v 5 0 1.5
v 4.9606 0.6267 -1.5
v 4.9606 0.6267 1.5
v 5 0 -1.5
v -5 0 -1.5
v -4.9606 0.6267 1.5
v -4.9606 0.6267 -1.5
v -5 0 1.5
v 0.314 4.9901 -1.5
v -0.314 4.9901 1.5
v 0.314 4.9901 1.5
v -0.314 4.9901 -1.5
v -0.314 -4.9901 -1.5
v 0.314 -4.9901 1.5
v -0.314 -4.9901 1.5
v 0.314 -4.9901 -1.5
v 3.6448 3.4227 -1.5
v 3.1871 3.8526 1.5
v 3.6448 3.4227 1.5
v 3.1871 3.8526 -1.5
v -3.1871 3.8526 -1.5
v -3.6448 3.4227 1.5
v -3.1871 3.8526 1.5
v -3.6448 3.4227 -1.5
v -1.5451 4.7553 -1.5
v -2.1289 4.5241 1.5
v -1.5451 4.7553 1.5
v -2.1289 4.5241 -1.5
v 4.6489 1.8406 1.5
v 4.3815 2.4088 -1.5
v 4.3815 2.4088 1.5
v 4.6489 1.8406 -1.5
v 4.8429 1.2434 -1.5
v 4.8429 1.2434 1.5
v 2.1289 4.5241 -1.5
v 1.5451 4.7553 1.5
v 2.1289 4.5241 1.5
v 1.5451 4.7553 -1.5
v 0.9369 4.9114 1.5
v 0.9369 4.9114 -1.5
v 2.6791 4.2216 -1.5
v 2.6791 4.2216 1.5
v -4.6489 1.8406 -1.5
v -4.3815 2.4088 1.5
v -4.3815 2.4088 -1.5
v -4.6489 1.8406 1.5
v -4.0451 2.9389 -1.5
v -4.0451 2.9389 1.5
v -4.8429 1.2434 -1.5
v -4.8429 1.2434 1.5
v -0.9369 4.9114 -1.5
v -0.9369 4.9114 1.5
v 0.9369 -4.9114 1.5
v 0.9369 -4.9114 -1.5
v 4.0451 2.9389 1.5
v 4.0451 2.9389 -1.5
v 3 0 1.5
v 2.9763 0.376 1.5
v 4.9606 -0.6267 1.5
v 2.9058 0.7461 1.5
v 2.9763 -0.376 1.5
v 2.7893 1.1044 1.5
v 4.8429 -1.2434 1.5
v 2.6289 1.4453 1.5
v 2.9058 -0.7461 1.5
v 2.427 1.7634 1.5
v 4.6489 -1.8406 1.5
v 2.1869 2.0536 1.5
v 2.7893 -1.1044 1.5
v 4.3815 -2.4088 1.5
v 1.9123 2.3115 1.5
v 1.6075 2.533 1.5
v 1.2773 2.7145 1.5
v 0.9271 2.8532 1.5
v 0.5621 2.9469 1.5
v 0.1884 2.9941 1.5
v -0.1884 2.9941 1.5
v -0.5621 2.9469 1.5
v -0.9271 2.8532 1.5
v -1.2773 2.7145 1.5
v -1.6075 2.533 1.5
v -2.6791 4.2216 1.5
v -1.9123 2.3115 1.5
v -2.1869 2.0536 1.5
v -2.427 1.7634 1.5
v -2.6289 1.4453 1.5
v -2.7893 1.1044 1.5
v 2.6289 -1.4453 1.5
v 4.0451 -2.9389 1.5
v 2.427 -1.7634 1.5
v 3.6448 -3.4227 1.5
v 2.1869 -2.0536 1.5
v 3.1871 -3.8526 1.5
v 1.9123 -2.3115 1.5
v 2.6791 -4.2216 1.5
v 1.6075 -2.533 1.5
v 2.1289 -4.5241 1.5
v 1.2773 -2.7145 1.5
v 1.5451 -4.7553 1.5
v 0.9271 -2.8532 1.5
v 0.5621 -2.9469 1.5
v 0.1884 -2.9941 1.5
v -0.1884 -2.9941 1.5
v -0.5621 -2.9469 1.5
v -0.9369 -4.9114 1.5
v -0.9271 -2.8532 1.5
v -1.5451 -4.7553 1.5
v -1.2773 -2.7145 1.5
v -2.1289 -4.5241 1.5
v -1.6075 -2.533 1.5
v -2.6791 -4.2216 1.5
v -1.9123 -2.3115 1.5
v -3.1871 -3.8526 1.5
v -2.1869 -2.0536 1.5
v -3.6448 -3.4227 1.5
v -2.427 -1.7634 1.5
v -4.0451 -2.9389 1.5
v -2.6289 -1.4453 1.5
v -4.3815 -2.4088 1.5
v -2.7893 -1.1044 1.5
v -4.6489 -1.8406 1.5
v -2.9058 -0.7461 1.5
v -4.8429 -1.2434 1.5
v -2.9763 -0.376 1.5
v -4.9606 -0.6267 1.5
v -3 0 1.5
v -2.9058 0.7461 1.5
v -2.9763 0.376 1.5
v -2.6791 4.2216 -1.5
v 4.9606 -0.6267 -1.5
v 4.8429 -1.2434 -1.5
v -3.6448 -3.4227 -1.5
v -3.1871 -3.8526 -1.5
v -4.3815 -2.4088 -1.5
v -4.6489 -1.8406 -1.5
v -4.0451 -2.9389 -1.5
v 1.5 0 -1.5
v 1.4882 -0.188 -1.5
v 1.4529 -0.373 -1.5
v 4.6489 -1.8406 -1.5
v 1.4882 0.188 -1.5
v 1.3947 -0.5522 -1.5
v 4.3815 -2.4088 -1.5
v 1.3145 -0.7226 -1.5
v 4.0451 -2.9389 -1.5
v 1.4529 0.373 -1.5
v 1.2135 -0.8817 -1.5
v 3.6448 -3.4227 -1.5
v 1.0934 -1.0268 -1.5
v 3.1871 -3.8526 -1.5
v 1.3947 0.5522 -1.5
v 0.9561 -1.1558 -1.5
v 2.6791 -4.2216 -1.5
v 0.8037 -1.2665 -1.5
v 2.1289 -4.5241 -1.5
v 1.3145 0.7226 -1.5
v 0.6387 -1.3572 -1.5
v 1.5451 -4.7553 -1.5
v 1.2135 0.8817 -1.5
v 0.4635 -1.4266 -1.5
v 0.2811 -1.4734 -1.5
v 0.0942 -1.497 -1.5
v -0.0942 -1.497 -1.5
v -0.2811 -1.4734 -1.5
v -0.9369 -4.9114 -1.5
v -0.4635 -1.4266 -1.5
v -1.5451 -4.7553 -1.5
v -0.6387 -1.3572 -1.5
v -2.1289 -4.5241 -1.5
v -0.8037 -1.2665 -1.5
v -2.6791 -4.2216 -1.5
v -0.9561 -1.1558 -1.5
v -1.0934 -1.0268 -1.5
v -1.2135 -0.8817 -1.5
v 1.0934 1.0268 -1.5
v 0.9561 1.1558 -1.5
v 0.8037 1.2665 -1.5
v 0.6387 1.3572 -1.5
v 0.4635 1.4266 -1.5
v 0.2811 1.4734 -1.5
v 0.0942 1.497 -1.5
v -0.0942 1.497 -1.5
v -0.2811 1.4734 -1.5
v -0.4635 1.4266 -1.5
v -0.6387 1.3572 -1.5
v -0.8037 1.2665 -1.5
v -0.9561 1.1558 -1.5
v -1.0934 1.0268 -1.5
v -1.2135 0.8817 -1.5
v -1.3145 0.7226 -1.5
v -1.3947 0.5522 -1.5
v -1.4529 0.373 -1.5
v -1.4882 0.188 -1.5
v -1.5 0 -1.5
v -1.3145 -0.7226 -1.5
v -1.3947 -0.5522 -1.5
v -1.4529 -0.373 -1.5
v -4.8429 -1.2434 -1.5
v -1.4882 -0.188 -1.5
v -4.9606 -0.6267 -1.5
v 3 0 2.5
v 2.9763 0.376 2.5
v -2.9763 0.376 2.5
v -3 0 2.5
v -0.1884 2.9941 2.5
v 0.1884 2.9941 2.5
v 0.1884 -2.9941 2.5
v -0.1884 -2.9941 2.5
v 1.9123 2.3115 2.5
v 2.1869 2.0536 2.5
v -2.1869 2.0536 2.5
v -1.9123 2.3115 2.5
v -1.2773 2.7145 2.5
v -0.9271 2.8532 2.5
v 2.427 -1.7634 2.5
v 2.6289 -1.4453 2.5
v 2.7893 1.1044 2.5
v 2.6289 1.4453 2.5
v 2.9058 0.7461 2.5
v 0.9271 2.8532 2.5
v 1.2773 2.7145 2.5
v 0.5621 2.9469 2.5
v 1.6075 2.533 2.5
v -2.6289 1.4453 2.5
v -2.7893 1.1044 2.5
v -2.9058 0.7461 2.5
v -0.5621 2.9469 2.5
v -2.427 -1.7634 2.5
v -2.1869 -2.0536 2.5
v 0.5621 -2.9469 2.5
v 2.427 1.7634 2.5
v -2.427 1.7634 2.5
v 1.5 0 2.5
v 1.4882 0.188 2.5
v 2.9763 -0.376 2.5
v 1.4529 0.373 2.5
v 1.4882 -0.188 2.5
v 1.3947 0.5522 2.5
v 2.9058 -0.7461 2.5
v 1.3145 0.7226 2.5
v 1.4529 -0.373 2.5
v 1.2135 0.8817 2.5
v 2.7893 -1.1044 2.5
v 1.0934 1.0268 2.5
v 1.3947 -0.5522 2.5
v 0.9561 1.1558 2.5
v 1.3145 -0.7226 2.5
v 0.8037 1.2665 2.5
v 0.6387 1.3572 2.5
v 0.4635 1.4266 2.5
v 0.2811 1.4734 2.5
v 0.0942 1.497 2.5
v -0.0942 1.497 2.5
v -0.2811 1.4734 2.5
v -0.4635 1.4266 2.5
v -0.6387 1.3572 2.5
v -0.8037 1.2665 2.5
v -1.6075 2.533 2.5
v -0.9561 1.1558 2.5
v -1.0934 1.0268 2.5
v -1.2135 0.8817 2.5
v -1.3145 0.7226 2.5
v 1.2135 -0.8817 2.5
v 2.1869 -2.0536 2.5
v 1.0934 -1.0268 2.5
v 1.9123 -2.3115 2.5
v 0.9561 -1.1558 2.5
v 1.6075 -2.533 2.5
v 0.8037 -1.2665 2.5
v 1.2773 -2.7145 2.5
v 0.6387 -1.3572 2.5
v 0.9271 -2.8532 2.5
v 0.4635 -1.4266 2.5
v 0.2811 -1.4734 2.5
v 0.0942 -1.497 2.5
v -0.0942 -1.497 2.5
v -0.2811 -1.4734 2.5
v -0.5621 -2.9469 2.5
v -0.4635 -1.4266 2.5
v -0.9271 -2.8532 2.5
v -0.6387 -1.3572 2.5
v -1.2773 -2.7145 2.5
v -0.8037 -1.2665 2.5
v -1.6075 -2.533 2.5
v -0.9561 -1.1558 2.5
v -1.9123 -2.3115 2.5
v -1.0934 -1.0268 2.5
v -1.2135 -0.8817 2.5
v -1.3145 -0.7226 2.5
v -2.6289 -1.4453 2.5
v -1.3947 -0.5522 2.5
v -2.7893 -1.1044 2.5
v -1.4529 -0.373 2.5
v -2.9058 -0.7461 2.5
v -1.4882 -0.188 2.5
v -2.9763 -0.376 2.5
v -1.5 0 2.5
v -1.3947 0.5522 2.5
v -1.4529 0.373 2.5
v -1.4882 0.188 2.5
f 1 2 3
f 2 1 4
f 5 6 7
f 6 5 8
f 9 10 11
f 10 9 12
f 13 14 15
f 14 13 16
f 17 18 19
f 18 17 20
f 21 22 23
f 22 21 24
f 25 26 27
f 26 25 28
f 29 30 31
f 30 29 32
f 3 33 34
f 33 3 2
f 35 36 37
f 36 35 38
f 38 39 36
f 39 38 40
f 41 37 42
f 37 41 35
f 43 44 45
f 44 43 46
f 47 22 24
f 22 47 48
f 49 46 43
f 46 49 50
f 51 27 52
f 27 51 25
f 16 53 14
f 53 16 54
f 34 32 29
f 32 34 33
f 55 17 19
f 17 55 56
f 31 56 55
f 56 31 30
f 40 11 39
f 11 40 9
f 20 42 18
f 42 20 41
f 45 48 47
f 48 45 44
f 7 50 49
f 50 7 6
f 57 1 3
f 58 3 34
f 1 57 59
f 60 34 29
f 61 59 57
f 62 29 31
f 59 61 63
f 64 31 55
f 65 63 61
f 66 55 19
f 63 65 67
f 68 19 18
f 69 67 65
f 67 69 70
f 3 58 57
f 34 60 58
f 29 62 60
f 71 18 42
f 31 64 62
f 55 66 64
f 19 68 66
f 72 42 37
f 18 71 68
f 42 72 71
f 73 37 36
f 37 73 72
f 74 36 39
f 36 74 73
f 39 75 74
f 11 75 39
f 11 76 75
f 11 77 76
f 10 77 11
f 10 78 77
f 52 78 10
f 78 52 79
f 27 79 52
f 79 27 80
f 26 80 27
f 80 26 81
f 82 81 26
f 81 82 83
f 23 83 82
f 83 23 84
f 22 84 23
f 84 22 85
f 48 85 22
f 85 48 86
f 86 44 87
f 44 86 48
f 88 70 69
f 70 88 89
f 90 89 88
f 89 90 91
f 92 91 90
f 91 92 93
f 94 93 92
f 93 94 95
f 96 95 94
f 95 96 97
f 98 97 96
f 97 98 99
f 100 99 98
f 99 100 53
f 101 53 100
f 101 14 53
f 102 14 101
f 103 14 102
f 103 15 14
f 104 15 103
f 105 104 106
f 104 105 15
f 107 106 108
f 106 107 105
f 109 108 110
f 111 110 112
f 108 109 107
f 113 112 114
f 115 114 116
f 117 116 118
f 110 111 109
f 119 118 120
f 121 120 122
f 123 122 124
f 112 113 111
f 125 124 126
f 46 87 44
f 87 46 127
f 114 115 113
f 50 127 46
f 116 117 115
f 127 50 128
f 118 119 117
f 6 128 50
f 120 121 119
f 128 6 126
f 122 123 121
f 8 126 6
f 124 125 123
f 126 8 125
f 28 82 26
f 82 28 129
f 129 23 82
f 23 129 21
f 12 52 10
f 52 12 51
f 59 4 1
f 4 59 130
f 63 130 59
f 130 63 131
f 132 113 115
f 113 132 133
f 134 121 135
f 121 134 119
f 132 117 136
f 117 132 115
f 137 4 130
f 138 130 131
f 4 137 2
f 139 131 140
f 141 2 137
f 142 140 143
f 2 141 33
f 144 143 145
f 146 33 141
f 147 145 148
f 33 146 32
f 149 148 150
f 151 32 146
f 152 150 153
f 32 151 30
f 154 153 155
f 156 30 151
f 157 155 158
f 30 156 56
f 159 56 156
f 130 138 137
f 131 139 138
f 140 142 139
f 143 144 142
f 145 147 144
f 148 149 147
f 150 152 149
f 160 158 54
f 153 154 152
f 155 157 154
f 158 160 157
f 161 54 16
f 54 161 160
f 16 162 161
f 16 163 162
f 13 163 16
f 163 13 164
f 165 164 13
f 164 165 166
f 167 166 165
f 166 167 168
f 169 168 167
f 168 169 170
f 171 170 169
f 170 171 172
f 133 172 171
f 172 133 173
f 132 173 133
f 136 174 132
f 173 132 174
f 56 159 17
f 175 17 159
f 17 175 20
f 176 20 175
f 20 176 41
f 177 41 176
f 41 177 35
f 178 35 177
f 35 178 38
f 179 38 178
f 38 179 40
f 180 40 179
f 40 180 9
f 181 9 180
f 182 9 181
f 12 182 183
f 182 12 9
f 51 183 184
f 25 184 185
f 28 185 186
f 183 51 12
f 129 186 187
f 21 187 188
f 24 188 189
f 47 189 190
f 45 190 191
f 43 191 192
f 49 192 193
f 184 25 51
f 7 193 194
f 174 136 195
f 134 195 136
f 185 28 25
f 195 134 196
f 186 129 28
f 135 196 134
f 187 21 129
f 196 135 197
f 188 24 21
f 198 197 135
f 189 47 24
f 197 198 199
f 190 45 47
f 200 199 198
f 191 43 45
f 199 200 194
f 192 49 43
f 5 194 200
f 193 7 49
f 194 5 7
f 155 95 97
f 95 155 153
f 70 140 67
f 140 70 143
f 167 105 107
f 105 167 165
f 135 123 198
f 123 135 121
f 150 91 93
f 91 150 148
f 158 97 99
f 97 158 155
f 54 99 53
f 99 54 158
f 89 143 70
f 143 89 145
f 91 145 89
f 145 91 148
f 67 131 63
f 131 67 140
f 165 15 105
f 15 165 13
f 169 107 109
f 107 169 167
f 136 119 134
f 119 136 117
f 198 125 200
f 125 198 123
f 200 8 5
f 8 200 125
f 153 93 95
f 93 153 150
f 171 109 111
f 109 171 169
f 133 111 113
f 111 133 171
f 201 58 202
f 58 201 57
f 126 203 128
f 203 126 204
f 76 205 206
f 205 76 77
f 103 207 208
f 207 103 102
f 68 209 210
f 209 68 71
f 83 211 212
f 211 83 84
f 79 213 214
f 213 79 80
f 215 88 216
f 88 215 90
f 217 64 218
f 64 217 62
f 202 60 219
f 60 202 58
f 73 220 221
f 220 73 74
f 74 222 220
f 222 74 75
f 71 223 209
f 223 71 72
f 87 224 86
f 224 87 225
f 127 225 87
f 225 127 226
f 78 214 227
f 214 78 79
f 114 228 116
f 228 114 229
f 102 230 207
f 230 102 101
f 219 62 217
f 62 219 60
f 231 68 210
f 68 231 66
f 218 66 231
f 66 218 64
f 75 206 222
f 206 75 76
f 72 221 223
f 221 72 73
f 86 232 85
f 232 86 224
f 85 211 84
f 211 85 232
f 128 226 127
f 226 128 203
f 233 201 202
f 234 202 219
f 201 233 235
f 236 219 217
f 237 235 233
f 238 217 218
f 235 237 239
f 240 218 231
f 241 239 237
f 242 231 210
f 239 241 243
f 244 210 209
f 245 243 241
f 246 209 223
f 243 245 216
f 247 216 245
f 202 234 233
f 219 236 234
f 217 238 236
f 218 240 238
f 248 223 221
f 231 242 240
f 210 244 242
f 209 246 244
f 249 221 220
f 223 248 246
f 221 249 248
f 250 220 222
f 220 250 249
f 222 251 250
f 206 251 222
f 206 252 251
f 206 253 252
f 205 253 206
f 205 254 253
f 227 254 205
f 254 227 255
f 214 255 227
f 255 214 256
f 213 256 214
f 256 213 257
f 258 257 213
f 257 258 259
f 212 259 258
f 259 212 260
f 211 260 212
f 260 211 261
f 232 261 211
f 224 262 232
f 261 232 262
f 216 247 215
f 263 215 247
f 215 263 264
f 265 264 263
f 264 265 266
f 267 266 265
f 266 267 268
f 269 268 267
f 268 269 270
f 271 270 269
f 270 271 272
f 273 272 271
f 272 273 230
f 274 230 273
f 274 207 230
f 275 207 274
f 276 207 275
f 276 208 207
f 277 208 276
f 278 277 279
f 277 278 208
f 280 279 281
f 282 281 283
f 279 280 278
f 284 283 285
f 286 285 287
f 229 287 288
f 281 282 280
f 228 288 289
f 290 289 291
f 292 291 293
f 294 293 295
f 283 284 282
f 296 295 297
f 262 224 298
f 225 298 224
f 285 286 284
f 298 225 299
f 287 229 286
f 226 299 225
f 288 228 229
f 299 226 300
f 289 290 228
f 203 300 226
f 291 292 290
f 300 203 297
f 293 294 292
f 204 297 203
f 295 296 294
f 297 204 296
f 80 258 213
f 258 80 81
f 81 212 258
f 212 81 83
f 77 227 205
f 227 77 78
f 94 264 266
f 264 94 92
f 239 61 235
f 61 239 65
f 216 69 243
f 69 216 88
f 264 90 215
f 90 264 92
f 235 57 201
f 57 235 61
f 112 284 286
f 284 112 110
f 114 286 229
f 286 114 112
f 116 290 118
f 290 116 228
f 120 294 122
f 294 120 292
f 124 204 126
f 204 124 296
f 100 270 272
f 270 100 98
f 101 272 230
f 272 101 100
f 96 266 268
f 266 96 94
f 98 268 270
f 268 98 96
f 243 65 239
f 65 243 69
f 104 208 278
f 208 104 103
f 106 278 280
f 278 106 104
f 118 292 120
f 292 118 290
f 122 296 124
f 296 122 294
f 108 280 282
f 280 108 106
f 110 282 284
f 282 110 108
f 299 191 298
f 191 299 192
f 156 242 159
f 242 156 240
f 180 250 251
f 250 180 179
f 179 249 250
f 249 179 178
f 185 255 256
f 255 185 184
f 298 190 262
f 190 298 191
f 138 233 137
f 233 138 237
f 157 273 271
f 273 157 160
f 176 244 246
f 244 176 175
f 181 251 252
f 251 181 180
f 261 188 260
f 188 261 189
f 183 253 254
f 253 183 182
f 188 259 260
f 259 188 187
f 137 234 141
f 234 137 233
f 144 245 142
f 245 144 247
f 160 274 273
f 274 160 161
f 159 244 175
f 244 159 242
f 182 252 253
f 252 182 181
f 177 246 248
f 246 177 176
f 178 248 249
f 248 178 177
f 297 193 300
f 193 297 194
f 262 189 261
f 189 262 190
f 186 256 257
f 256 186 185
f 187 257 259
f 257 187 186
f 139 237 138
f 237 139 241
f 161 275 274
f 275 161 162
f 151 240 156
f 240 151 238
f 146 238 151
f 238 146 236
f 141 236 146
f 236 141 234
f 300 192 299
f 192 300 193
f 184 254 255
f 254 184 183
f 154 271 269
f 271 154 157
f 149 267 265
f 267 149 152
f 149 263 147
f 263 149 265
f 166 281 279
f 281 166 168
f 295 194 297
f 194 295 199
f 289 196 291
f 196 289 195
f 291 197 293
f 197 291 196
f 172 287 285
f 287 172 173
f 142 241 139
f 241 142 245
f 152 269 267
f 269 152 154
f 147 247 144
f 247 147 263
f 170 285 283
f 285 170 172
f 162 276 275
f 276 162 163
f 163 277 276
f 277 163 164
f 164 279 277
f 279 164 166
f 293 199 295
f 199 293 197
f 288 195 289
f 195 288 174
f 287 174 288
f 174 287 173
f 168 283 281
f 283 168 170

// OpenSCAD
$fn = 50;


difference() {
	union() {
		translate(v = [0, 0, -1.5000000000]) {
			rotate(a = [0, 0, 0]) {
				cylinder(h = 3, r = 5.0000000000);
			}
		}
		translate(v = [0, 0, -1.5000000000]) {
			rotate(a = [0, 0, 0]) {
				cylinder(h = 4, r = 3.0000000000);
			}
		}
	}
	union() {
		translate(v = [0, 0, -125.0000000000]) {
			rotate(a = [0, 0, 0]) {
				cylinder(h = 250, r = 1.5000000000);
			}
		}
	}
}
